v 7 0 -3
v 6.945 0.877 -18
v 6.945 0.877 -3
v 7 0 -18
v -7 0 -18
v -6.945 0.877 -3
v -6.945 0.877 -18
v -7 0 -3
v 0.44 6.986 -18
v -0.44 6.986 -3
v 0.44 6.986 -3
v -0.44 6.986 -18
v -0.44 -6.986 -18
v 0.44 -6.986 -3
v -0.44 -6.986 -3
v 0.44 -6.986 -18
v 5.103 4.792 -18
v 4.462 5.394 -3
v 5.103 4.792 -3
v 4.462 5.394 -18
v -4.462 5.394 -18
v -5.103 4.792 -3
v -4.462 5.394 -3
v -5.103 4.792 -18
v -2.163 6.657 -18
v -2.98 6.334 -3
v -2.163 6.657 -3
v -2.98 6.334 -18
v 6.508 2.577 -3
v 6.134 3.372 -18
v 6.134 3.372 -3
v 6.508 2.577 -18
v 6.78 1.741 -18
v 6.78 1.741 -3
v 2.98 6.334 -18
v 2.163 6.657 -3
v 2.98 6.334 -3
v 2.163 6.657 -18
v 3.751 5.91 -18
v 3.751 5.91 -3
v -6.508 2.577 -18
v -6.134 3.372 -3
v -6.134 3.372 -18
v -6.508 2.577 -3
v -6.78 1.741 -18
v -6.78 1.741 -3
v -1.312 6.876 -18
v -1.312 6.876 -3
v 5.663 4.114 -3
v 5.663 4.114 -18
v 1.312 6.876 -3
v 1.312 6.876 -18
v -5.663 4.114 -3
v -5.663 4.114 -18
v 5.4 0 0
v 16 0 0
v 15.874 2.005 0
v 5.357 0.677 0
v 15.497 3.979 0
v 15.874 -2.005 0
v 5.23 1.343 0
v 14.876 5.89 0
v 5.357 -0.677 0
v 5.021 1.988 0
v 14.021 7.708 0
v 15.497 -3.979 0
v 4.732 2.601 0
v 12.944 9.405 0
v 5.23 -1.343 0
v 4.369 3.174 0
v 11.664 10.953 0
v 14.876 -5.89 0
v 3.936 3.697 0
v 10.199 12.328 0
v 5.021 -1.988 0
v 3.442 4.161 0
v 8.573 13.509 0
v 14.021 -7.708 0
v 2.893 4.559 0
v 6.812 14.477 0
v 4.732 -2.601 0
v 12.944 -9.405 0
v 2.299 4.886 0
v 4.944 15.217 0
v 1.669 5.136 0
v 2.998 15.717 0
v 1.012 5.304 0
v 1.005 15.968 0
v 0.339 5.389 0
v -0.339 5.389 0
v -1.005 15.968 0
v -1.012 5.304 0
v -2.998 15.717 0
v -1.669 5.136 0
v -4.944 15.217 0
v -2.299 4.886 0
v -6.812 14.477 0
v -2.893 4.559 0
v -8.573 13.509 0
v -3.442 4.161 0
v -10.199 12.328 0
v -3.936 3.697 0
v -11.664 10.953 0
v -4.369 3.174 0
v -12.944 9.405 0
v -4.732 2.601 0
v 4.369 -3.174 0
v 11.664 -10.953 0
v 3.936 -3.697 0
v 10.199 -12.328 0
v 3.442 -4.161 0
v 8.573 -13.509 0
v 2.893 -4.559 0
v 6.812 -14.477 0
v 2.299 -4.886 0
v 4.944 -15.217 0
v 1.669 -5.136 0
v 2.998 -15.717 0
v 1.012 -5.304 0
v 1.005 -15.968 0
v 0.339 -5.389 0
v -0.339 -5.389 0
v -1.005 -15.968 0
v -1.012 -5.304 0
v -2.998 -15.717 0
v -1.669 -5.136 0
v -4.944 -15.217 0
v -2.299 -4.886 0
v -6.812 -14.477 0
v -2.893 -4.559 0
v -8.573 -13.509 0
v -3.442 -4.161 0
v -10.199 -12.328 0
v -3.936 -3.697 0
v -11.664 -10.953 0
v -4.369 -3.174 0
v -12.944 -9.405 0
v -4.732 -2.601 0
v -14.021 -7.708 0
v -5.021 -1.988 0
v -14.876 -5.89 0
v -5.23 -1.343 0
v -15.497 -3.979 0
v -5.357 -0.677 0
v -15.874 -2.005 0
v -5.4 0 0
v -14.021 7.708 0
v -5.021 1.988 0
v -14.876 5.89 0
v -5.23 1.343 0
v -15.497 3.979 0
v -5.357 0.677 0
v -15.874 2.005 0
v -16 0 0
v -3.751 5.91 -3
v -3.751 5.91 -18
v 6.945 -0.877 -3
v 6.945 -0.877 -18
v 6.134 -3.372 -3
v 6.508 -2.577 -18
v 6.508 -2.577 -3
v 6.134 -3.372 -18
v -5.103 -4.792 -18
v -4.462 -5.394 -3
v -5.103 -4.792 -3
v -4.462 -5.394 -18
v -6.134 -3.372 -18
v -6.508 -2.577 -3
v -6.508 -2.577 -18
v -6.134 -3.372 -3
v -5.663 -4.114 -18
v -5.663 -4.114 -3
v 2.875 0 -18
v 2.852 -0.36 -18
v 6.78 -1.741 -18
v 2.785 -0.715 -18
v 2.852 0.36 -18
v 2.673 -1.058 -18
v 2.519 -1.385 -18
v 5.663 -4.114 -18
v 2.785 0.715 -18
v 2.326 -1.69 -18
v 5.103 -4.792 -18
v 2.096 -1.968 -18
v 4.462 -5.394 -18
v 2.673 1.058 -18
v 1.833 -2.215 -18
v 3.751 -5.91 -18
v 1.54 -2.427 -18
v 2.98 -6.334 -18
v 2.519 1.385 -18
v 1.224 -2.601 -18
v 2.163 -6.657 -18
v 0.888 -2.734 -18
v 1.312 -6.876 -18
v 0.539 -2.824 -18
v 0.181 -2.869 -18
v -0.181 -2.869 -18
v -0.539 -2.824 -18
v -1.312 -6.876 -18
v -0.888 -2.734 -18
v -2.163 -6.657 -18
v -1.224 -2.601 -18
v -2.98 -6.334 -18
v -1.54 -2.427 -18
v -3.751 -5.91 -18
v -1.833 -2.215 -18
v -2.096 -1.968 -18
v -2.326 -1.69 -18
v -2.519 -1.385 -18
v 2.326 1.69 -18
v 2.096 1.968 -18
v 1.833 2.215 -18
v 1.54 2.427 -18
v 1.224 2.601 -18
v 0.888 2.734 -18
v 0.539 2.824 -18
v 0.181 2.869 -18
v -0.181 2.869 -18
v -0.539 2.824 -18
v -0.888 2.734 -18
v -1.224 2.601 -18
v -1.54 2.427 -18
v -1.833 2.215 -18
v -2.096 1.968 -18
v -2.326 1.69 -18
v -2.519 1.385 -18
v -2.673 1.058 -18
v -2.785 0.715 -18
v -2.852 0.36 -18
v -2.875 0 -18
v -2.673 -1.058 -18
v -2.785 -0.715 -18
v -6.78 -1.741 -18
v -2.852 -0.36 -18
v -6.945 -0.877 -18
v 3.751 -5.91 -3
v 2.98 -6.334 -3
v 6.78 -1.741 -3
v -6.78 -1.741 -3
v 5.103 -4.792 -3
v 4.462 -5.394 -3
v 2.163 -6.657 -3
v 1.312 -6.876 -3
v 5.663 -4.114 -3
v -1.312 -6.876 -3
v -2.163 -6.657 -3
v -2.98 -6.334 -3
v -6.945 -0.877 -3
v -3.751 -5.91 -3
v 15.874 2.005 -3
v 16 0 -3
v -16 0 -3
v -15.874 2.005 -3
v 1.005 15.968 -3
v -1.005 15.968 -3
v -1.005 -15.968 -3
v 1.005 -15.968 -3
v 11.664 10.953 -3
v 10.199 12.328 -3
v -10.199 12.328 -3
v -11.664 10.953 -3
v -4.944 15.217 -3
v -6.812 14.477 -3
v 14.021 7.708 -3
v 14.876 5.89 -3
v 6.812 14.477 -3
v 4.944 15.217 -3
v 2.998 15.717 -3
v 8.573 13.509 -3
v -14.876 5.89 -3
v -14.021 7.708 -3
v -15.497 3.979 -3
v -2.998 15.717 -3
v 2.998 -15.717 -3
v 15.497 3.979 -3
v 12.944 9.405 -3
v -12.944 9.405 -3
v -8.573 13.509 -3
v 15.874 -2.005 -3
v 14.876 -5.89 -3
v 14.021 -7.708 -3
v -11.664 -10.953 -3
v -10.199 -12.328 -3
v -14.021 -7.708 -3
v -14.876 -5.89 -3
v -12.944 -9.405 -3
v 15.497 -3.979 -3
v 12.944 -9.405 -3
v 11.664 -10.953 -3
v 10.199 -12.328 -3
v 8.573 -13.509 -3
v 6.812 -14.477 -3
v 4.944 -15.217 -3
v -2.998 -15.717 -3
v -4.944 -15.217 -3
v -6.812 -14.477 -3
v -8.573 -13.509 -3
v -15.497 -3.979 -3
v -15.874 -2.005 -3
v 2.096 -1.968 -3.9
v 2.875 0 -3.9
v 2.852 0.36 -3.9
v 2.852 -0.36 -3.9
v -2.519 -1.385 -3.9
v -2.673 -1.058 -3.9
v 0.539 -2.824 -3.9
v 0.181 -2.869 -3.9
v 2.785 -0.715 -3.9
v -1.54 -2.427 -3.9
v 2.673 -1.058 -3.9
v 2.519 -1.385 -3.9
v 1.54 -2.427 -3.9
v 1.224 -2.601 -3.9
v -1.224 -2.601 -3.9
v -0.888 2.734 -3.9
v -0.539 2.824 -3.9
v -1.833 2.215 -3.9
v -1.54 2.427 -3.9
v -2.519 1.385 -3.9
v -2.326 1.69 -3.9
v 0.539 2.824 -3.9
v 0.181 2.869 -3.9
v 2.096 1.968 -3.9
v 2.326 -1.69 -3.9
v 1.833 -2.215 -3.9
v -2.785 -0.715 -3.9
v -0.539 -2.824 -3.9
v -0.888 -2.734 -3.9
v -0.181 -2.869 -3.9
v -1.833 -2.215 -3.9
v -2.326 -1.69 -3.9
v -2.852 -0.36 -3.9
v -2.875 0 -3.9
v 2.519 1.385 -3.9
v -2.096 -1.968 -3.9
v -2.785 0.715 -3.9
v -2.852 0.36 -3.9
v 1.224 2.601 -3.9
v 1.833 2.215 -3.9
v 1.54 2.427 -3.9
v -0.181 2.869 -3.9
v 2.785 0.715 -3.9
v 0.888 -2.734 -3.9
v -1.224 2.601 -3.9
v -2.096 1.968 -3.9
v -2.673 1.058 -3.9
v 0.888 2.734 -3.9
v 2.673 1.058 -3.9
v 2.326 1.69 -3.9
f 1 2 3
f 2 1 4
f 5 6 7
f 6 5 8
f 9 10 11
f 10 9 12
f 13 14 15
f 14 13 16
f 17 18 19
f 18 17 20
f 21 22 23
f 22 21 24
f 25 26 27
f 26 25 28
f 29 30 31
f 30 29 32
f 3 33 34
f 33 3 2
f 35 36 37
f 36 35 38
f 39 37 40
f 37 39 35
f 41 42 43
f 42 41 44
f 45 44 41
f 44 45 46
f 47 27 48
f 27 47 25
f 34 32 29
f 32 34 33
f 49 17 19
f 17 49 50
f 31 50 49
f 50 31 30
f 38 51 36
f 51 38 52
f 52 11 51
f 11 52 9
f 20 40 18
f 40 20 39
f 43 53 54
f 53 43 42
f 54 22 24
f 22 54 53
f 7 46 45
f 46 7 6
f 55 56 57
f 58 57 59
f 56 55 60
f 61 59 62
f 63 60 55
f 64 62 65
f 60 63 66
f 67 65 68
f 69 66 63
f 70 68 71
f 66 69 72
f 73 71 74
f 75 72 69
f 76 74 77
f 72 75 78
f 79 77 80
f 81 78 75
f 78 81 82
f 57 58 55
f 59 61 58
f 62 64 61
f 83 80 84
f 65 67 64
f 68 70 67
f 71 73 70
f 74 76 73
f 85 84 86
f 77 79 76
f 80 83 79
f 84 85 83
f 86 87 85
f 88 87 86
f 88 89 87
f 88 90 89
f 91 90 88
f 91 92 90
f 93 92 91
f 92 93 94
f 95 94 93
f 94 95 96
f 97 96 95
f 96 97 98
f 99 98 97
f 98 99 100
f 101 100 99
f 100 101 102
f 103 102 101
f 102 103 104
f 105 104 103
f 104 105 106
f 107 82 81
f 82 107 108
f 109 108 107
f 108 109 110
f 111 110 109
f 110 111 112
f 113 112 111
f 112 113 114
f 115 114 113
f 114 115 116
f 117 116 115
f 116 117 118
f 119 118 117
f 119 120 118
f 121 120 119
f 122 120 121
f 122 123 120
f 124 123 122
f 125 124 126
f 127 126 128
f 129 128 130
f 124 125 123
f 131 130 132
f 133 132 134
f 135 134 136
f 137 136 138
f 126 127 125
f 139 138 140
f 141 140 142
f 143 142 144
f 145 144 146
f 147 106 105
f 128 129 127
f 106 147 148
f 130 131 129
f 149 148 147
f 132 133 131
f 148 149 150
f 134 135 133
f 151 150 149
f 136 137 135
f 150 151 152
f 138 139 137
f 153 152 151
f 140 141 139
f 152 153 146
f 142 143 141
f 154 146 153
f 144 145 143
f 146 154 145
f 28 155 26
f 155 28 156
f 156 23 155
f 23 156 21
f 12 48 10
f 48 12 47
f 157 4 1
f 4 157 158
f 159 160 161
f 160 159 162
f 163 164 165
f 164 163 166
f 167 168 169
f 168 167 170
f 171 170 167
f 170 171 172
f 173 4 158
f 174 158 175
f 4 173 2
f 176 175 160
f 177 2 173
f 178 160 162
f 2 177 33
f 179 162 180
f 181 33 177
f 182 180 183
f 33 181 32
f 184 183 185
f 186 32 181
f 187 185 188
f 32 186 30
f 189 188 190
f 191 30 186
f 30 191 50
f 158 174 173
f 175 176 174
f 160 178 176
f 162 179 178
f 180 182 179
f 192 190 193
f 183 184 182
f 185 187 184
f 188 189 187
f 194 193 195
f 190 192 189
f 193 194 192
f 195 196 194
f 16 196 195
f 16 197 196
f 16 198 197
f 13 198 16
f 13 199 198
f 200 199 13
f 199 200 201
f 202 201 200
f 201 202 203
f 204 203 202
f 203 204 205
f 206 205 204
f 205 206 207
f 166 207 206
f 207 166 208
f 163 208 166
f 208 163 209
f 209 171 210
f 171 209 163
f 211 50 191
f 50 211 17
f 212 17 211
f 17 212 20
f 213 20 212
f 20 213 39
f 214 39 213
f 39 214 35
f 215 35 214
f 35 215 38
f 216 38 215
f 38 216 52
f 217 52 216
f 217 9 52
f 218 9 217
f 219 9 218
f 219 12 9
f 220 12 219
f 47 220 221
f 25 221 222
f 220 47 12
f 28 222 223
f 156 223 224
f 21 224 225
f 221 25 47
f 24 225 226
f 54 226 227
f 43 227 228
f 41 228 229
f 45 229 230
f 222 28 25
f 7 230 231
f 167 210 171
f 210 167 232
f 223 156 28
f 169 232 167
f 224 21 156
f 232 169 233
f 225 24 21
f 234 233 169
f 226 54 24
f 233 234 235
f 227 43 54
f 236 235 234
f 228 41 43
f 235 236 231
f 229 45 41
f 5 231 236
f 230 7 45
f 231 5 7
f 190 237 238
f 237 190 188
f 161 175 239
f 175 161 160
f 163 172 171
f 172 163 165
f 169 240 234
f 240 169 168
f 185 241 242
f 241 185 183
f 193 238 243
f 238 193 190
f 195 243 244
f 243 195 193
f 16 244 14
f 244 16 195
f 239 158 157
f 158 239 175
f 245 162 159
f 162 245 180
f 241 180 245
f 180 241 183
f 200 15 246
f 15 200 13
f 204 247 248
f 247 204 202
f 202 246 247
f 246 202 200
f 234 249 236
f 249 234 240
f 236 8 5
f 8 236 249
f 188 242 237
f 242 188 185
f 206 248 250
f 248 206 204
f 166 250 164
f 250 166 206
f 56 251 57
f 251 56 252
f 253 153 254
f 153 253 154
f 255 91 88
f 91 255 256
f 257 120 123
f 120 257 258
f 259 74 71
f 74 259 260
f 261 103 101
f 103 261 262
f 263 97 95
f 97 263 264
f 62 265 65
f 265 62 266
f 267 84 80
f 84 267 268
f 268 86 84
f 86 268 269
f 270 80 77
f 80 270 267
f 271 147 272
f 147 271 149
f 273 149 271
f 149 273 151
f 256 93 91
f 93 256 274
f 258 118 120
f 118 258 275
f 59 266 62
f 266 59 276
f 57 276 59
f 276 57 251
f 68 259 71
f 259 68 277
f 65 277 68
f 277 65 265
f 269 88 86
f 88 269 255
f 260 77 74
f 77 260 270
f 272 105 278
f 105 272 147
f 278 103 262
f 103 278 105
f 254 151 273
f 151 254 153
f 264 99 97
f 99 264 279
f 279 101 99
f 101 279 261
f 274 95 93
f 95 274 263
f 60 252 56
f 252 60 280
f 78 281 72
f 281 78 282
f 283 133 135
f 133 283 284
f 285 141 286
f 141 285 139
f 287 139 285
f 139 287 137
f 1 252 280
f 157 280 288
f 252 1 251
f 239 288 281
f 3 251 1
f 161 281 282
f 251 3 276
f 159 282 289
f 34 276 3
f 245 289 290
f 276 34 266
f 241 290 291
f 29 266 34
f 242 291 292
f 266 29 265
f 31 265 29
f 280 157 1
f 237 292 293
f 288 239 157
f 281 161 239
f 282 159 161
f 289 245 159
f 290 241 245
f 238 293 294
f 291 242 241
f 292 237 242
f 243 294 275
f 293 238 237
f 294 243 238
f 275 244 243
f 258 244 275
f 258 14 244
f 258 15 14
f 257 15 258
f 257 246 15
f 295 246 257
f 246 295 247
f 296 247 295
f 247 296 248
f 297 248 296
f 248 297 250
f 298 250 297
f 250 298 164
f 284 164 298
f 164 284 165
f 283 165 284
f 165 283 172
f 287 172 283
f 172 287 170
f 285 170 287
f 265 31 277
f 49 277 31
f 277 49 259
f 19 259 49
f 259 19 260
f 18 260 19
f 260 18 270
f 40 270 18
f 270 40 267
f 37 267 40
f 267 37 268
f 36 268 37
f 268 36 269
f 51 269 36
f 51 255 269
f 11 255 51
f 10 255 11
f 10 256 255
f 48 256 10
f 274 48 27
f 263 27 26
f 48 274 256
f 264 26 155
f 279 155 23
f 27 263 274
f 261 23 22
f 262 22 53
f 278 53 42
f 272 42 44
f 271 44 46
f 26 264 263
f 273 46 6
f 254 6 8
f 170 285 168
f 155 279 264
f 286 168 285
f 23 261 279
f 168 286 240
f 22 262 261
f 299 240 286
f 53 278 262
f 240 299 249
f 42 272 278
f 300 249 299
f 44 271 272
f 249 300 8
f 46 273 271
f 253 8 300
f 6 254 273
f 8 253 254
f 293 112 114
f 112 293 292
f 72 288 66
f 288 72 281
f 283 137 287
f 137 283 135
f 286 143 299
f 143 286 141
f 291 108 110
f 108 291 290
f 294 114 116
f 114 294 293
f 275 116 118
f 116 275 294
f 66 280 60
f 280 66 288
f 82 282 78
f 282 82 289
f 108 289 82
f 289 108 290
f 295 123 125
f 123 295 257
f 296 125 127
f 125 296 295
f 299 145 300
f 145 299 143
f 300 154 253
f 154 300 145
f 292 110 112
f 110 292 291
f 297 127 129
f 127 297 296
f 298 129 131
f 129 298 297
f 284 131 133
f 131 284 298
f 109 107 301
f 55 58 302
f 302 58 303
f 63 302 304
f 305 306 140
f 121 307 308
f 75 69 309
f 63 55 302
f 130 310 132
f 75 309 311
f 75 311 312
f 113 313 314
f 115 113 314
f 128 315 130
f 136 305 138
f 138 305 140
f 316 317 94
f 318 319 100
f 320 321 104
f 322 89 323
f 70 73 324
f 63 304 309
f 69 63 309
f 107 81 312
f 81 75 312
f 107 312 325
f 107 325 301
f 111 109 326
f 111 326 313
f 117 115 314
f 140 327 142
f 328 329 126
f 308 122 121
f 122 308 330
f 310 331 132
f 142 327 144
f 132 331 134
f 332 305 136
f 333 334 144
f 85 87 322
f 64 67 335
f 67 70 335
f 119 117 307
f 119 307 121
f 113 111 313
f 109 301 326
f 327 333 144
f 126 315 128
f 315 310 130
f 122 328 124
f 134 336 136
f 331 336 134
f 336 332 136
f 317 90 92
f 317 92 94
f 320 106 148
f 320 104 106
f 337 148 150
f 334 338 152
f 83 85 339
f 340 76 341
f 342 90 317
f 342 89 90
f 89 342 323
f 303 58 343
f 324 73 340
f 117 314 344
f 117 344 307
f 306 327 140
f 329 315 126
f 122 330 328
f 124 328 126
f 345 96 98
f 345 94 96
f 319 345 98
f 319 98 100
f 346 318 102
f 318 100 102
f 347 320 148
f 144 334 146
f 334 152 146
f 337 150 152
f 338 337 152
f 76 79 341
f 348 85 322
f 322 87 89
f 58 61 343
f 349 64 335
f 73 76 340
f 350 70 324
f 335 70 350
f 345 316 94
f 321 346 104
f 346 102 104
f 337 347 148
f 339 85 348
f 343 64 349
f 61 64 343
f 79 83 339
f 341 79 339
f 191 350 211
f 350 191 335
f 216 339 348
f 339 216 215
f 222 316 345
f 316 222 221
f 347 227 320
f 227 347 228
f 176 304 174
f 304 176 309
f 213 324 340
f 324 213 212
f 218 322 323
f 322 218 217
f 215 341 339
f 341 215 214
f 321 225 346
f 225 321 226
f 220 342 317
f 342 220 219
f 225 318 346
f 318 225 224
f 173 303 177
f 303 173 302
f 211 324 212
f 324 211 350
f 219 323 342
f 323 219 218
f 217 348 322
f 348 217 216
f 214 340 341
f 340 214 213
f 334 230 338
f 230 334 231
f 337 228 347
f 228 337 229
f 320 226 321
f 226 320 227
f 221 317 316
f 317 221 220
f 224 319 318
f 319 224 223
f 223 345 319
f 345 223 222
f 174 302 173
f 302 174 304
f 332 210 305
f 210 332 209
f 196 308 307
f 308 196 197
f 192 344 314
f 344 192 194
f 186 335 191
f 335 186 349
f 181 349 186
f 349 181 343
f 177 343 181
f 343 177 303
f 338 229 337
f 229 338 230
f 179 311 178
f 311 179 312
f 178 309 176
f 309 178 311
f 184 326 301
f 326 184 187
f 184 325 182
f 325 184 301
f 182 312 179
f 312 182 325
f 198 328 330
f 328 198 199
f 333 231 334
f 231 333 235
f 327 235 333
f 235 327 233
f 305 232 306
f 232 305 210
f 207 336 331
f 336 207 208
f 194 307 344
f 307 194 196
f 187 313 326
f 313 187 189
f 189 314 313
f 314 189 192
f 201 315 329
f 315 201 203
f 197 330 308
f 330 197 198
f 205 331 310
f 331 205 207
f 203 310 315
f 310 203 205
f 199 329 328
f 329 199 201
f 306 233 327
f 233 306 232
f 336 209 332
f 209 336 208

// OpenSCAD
$fn = 50;


difference() {
	union() {
		translate(v = [0, 0, -18.0000000000]) {
			cylinder(h = 18, r = 7.0000000000);
		}
		translate(v = [0, 0, -3.0000000000]) {
			cylinder(h = 3, r = 16.0000000000);
		}
	}
	union() {
		translate(v = [0, 0, 0]) {
			rotate(a = [0, 0, 0]) {
				difference() {
					union() {
						#translate(v = [0, 0, -18.0000000000]) {
							cylinder(h = 18, r = 2.6000000000);
						}
						#translate(v = [0, 0, -3.9000000000]) {
							cylinder(h = 3.9000000000, r1 = 2.8750000000, r2 = 5.4000000000);
						}
						#translate(v = [0, 0, -18.0000000000]) {
							cylinder(h = 18, r = 2.8750000000);
						}
						#translate(v = [0, 0, -18.0000000000]) {
							cylinder(h = 18, r = 2.6000000000);
						}
					}
					union();
				}
			}
		}
	}
}
